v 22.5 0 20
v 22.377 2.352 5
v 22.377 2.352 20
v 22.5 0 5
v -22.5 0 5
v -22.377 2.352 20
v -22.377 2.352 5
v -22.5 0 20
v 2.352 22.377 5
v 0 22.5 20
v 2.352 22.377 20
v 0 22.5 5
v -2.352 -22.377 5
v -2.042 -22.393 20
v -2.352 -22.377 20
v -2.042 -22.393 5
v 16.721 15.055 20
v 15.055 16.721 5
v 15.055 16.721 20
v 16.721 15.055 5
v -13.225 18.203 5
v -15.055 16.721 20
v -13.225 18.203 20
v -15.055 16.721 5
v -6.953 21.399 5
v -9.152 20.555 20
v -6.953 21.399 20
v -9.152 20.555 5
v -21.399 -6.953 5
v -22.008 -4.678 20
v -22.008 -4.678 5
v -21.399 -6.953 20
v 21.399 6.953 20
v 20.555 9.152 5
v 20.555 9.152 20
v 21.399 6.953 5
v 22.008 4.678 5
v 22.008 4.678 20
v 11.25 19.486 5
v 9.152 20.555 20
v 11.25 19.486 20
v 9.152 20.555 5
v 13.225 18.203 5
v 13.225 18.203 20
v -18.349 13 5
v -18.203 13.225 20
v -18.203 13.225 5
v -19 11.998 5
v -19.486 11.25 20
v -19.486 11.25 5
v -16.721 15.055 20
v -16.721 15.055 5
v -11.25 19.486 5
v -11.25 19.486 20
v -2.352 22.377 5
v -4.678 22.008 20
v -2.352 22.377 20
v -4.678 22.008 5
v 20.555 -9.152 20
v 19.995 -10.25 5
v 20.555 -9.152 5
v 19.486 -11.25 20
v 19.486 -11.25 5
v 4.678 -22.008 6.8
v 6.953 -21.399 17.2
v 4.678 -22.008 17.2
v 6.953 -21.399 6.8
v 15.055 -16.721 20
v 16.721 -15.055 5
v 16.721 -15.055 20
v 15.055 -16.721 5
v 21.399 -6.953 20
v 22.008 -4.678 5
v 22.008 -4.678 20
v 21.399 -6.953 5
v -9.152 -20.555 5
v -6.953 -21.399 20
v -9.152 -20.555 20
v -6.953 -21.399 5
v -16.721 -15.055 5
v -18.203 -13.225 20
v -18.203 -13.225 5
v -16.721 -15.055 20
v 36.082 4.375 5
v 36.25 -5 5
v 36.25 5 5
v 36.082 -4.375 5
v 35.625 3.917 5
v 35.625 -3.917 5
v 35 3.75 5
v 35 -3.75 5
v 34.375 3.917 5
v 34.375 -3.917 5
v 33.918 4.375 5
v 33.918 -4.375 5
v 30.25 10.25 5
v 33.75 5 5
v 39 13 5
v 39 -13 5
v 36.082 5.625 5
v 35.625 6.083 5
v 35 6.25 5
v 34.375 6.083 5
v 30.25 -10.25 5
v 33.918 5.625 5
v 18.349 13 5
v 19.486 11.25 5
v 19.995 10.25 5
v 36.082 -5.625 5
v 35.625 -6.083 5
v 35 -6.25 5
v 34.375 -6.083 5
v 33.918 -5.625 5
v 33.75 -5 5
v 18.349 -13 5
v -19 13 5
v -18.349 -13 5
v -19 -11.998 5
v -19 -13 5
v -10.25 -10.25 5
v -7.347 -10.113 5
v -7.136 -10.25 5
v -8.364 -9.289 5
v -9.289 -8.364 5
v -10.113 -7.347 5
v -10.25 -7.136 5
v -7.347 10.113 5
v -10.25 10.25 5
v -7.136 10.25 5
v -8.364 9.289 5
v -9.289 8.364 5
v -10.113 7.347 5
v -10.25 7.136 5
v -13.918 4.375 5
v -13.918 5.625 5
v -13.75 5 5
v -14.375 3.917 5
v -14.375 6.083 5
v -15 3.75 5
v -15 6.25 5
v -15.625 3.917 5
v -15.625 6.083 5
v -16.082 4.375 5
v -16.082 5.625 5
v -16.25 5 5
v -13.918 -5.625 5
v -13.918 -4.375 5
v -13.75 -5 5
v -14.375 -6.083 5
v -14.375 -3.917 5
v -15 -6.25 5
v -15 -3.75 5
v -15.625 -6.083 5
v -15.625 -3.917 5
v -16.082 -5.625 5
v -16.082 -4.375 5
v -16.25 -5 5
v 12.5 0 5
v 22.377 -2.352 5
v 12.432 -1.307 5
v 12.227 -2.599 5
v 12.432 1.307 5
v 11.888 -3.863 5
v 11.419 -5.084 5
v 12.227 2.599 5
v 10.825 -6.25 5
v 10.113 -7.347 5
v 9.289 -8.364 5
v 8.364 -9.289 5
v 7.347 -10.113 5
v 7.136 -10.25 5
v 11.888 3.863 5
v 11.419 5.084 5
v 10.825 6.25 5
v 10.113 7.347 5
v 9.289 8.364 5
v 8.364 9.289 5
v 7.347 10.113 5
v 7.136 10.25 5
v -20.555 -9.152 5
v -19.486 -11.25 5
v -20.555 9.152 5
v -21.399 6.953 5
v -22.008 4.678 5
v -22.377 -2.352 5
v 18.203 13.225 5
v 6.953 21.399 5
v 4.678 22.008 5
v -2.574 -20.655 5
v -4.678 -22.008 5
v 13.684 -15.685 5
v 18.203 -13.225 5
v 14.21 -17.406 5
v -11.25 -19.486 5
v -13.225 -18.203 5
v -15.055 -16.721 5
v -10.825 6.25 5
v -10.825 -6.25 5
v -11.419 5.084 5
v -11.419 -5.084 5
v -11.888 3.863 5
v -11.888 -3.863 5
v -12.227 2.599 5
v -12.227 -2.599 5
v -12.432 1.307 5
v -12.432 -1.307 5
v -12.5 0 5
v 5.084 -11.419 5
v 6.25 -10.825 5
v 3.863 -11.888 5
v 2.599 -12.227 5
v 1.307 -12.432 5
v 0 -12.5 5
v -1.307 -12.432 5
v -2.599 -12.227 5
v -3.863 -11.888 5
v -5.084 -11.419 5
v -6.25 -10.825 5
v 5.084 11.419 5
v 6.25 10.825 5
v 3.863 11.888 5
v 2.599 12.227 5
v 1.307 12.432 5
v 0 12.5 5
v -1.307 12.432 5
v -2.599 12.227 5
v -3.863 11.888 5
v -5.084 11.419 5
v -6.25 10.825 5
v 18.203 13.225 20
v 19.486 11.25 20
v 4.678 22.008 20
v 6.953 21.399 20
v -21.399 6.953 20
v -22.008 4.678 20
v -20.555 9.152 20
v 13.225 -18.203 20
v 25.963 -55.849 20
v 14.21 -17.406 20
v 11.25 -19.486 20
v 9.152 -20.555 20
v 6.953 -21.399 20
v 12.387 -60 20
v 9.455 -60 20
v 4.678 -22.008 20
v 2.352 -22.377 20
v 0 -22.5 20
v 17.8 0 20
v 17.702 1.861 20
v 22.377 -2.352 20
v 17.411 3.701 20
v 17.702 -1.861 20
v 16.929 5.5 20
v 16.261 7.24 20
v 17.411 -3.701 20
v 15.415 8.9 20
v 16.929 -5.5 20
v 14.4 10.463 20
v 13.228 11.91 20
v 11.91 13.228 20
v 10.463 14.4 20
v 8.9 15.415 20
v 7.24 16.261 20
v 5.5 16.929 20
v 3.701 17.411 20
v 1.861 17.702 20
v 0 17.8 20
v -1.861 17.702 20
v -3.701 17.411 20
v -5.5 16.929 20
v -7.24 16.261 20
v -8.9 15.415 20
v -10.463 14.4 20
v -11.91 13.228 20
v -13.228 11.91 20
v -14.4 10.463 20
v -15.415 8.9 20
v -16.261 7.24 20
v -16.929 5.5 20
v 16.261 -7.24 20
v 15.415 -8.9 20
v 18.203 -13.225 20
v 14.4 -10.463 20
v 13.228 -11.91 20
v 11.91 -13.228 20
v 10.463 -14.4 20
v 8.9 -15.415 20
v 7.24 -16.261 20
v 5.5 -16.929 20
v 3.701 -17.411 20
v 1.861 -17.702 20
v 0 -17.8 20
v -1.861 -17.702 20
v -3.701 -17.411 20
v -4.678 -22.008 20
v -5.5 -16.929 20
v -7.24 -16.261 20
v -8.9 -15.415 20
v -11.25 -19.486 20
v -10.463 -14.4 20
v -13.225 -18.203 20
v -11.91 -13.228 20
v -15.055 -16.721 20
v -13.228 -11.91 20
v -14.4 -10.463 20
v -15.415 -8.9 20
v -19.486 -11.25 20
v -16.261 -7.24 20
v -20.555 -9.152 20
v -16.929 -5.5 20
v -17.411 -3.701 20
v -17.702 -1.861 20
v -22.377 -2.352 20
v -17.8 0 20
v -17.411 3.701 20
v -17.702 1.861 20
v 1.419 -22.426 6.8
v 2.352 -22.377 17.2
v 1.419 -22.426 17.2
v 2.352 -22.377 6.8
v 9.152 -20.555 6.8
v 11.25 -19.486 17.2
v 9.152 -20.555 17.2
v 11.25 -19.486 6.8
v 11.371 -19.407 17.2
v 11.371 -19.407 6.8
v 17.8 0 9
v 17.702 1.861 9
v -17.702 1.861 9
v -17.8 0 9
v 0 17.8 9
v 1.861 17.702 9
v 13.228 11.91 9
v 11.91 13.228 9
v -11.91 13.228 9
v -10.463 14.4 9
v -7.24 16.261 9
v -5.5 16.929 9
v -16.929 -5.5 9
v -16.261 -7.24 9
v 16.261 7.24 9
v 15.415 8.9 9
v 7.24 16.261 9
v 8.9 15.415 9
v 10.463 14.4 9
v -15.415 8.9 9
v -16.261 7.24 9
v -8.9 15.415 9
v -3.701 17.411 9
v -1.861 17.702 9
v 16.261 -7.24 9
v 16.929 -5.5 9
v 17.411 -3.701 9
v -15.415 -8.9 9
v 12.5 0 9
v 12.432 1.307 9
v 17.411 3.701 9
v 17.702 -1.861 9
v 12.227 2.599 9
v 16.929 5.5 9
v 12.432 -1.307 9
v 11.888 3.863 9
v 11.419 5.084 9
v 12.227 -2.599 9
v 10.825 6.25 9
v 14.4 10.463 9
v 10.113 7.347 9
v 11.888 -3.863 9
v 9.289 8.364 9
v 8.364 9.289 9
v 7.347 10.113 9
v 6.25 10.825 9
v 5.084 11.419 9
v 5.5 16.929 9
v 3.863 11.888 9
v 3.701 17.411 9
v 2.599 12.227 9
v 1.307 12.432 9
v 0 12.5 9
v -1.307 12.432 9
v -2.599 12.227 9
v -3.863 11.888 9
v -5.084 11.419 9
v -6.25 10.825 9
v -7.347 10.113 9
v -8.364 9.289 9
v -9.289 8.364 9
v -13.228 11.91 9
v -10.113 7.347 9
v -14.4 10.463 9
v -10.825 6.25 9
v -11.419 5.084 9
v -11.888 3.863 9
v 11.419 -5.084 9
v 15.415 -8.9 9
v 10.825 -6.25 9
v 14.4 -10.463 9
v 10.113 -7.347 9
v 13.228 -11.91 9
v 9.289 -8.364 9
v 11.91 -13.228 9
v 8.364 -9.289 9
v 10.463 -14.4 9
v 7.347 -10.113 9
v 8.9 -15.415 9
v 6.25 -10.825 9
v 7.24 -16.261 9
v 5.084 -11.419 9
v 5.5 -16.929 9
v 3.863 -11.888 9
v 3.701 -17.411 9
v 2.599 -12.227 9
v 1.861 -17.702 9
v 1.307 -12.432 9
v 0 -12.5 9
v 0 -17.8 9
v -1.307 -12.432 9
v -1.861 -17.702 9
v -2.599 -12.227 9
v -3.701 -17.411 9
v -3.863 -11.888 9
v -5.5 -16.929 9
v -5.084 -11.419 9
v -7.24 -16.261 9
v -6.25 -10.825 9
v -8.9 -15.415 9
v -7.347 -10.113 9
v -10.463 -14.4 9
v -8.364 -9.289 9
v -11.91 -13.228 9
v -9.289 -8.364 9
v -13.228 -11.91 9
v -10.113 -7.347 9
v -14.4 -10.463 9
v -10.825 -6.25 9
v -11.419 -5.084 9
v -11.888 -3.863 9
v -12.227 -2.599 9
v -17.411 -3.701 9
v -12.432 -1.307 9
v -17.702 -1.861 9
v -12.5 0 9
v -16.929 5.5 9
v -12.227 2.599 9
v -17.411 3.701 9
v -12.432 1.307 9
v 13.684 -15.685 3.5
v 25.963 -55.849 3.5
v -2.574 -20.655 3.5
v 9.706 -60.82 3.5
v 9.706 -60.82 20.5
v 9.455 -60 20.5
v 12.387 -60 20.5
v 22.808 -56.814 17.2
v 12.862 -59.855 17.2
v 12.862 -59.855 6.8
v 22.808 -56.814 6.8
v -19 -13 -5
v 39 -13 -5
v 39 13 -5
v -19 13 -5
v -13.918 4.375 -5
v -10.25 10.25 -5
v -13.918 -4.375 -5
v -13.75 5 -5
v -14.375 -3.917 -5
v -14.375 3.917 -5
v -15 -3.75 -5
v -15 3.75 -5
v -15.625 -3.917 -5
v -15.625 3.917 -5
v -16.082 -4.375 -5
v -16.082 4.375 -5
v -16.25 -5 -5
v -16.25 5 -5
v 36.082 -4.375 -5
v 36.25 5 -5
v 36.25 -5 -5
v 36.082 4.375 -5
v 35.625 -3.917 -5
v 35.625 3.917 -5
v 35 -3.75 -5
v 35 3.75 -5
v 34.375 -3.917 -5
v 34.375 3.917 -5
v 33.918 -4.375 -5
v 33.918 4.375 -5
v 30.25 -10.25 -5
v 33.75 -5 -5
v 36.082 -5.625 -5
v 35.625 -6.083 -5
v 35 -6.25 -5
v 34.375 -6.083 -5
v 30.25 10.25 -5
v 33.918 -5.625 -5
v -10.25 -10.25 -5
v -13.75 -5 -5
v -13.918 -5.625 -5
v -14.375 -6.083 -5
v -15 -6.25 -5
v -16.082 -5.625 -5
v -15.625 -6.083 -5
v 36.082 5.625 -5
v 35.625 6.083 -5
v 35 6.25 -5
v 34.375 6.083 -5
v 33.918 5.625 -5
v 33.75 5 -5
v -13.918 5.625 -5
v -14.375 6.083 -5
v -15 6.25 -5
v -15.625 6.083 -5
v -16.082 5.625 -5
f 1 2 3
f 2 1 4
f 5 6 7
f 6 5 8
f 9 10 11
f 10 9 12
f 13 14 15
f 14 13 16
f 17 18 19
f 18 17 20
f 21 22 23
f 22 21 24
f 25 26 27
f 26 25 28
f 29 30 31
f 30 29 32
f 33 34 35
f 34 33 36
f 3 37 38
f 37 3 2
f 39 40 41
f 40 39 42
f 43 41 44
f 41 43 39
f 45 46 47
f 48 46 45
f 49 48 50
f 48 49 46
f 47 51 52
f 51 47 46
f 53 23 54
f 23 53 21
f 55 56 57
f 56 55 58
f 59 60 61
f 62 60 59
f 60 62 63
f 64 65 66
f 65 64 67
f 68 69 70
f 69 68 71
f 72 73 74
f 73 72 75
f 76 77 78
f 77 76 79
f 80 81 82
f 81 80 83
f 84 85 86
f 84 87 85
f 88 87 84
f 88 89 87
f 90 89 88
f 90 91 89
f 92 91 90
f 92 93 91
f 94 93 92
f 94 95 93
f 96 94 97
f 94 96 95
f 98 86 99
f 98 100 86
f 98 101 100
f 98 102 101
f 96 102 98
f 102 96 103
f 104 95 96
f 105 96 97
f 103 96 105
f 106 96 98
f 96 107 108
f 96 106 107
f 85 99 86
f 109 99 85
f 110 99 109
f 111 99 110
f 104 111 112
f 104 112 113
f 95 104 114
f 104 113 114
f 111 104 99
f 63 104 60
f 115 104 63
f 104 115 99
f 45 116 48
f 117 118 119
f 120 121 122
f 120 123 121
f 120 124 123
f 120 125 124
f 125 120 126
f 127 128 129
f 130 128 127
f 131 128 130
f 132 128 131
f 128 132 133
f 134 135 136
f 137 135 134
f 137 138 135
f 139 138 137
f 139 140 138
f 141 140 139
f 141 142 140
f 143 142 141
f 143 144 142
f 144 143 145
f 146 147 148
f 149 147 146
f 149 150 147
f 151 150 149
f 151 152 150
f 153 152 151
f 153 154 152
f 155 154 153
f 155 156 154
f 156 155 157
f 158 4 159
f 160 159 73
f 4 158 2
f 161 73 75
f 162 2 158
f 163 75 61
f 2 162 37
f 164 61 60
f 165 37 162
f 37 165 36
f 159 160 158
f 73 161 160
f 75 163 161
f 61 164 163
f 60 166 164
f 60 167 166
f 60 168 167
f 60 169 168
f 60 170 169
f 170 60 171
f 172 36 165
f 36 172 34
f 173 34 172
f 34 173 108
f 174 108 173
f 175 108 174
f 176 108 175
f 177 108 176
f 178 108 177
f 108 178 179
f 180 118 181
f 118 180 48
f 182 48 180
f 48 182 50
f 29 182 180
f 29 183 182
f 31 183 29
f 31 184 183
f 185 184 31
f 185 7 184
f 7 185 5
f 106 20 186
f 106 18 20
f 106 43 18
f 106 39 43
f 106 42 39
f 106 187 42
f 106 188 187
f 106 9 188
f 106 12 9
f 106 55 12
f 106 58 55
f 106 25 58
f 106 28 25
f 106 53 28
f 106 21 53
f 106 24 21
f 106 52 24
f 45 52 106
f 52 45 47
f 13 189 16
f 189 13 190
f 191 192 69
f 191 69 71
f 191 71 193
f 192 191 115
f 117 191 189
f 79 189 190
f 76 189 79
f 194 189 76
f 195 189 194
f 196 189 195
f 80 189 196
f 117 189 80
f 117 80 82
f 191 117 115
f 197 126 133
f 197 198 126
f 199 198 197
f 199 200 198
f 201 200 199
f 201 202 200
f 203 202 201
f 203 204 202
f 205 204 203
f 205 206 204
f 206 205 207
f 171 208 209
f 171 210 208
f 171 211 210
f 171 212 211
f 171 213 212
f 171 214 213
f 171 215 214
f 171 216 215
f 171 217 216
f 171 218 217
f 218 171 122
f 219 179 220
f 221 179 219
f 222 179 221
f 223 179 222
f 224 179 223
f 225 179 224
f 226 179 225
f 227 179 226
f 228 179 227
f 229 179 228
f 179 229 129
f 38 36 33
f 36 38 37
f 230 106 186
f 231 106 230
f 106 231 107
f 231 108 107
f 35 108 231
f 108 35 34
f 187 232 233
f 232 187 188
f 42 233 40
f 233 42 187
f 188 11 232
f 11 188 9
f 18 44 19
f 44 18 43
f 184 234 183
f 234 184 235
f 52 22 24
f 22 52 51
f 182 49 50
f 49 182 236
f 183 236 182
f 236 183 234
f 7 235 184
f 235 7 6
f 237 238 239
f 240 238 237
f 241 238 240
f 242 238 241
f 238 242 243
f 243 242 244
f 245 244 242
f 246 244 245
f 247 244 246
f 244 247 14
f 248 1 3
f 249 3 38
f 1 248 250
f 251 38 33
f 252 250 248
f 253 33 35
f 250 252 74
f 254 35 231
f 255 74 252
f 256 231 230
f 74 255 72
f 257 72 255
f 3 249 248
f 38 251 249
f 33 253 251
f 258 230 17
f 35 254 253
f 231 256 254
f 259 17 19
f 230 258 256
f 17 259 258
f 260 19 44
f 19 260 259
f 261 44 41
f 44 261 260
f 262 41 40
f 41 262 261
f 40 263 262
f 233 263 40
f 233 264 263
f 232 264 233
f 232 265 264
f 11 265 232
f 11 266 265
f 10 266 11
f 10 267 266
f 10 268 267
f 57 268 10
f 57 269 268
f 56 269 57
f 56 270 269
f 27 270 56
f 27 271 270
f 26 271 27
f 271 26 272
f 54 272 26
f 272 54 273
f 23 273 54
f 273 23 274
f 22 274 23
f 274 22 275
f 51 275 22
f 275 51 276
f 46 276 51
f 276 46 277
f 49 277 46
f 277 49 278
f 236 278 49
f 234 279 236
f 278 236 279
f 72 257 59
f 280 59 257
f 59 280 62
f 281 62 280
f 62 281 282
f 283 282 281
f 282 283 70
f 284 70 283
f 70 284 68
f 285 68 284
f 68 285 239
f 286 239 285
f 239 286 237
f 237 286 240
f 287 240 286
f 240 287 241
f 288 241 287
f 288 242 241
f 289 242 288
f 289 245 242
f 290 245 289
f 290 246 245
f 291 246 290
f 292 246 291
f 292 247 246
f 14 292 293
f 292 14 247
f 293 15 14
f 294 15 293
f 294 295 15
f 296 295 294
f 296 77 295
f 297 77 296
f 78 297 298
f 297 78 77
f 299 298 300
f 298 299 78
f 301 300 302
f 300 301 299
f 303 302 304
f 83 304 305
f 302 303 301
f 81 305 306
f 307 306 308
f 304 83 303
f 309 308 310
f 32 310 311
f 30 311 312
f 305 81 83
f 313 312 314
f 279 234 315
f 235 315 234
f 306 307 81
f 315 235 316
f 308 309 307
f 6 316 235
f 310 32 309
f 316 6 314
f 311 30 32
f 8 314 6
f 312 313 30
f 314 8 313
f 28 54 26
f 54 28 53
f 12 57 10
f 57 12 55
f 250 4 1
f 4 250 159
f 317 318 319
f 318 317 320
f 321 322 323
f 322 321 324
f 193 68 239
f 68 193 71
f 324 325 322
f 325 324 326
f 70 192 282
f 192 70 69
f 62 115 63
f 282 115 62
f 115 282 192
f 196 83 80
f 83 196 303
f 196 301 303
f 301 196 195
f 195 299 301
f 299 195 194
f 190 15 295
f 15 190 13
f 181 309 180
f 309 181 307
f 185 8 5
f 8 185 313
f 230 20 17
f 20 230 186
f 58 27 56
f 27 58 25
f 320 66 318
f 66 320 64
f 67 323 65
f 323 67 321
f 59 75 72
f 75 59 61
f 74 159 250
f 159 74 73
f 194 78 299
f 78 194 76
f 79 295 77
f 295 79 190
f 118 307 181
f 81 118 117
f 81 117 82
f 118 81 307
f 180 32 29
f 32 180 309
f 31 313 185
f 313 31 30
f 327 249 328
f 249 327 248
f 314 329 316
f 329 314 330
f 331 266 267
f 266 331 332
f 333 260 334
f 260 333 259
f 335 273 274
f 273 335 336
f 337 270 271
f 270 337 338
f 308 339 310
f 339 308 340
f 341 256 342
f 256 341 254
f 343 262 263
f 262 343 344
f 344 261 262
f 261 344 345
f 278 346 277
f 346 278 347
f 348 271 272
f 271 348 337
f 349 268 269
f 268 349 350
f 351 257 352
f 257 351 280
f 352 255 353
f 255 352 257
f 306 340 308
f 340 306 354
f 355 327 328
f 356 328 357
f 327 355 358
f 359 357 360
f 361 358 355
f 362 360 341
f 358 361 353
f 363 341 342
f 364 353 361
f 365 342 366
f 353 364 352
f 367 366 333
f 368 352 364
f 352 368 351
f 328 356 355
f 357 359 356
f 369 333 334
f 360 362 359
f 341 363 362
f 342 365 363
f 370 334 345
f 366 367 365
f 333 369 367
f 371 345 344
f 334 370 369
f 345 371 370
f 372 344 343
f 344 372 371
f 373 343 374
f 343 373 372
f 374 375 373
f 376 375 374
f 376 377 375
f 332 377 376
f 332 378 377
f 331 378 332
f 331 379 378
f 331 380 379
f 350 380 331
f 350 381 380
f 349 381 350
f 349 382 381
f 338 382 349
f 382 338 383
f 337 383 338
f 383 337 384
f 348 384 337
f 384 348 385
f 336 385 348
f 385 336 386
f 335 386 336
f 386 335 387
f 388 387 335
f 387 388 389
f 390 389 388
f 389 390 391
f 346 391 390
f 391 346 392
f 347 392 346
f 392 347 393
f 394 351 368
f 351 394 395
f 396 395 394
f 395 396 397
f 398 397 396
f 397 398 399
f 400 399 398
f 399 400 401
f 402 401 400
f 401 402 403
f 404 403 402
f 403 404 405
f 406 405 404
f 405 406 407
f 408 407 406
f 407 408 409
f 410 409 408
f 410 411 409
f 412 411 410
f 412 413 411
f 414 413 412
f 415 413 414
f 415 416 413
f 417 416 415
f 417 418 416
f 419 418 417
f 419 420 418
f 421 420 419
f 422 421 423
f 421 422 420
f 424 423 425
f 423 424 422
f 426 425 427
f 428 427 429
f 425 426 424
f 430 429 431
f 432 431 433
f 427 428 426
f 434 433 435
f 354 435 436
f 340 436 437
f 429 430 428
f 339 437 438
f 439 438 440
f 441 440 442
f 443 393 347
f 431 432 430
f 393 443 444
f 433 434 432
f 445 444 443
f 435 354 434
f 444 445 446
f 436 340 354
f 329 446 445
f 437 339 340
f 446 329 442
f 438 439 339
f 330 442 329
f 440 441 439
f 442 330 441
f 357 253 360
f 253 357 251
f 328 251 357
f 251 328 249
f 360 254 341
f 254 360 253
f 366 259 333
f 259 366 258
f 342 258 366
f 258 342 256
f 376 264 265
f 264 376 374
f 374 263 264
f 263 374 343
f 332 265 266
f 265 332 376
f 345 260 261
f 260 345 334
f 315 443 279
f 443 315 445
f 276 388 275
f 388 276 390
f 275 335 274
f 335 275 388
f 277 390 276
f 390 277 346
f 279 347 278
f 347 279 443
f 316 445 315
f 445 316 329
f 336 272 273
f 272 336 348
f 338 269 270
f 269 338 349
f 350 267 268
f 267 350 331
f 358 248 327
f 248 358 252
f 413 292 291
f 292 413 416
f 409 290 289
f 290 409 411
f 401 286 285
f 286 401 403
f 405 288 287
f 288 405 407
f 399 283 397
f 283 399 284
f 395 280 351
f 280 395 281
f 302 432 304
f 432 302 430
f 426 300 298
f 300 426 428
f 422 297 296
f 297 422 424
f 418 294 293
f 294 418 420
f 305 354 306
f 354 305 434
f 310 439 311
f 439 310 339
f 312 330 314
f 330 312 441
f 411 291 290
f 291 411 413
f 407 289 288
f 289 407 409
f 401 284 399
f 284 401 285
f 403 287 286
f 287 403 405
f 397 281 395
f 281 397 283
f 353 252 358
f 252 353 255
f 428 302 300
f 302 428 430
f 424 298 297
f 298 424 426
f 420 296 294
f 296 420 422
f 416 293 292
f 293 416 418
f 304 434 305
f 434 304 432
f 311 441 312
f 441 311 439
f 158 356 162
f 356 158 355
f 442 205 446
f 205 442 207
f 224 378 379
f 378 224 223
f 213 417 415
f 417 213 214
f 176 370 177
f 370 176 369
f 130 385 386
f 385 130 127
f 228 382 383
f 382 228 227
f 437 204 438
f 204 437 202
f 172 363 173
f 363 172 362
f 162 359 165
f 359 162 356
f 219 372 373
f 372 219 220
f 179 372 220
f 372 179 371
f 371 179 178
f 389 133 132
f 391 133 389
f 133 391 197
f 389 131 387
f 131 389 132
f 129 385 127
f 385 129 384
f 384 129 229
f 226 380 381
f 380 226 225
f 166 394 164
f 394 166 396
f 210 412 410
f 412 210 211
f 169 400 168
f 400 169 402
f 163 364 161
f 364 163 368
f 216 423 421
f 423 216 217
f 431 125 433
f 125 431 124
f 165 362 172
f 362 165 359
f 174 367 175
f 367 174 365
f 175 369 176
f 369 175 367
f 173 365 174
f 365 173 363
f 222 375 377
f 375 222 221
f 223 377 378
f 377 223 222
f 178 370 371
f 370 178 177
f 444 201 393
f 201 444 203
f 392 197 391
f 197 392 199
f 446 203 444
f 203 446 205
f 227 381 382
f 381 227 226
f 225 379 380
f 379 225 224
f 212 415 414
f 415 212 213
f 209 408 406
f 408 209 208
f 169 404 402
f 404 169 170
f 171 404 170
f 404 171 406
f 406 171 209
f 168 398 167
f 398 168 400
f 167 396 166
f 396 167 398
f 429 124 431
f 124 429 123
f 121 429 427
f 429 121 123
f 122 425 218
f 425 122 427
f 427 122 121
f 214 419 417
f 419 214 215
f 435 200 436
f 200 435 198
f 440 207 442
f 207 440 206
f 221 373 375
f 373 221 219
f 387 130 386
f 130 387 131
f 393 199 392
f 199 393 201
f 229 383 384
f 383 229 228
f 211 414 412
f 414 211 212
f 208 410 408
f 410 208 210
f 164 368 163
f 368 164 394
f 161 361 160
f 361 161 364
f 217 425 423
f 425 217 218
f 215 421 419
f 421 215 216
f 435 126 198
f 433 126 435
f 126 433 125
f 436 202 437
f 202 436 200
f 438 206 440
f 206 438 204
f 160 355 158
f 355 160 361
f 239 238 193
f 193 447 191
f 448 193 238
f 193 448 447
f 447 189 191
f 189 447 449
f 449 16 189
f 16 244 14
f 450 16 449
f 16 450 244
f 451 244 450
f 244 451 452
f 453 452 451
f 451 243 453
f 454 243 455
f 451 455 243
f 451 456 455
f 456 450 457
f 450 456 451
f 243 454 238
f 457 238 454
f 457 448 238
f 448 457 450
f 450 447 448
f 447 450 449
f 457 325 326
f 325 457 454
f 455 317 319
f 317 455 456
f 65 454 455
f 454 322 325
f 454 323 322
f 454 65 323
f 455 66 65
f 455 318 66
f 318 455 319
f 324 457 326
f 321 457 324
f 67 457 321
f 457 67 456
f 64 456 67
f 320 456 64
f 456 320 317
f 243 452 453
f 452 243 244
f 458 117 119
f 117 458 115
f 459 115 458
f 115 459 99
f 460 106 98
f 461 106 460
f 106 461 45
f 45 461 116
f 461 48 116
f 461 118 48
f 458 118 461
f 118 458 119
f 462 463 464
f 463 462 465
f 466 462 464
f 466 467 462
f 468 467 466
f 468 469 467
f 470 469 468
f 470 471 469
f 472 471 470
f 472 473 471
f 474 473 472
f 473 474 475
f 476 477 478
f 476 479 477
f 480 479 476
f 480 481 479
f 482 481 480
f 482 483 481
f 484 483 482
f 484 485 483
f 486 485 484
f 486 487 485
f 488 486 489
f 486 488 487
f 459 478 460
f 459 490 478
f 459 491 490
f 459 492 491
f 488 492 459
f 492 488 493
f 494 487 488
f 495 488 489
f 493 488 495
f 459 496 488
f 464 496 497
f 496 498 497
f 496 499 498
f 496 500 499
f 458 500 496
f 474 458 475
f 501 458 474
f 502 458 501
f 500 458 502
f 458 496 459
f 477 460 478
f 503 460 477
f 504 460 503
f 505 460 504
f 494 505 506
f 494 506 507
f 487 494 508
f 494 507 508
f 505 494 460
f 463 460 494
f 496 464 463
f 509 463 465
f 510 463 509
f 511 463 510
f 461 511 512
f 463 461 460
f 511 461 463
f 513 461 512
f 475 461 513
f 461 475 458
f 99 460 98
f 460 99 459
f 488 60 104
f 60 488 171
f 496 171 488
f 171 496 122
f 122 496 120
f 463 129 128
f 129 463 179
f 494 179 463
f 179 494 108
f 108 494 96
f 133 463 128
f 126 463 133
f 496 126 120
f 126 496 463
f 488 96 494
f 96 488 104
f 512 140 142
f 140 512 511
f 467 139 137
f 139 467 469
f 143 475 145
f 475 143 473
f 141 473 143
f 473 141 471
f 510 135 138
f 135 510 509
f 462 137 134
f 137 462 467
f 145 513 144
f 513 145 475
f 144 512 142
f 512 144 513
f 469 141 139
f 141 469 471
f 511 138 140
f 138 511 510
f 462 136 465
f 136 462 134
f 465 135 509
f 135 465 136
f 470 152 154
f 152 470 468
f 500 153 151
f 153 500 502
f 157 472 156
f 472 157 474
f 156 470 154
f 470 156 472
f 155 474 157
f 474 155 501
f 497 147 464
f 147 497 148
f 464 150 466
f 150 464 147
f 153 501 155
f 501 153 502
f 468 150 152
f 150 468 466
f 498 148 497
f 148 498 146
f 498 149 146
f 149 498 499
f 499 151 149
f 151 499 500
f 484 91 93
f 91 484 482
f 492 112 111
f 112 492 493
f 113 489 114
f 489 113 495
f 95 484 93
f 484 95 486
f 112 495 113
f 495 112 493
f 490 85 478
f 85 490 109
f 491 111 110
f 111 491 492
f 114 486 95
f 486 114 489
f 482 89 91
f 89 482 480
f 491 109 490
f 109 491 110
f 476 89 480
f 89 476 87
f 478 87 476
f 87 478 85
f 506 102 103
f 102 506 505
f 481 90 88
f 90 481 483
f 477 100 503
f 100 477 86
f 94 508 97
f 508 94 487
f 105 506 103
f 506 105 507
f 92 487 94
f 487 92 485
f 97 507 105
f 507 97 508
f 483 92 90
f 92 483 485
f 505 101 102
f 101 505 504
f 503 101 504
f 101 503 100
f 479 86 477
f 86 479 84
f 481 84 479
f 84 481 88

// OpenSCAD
$fn=20;

translate([0,0,5])
difference(){
    cylinder(d=45,h=15,$fn=60);
    translate([0,0,4])cylinder(d=35.6,h=12,$fn=60);
    translate([0,0,-1])cylinder(d=25,h=12,$fn=60);
}

difference(){
rotate([0,0,-163])
translate([0,40,12])
rotate([90,0,0])
difference(){
cube([17,17,42],center=true);
cube([10.4,10.4,42],center=true);
}
translate([0,0,5])cylinder(d=35.6,h=16,$fn=60);
translate([0,0,25])cube([120,120,10],center=true);
translate([10,0,0])rotate([0,0,90])
cube([20.5,40.5,12],center=true);
}


$fn=12;
translate([10,0,0])rotate([0,0,90])
difference(){
cube([26,58,10],center=true);
cube([20.5,40.5,12],center=true);
translate([5,25,-6])cylinder(d=2.5,h=12);
translate([-5,25,-6])cylinder(d=2.5,h=12);
translate([-5,-25,-6])cylinder(d=2.5,h=12);
translate([5,-25,-6])cylinder(d=2.5,h=12);
}
